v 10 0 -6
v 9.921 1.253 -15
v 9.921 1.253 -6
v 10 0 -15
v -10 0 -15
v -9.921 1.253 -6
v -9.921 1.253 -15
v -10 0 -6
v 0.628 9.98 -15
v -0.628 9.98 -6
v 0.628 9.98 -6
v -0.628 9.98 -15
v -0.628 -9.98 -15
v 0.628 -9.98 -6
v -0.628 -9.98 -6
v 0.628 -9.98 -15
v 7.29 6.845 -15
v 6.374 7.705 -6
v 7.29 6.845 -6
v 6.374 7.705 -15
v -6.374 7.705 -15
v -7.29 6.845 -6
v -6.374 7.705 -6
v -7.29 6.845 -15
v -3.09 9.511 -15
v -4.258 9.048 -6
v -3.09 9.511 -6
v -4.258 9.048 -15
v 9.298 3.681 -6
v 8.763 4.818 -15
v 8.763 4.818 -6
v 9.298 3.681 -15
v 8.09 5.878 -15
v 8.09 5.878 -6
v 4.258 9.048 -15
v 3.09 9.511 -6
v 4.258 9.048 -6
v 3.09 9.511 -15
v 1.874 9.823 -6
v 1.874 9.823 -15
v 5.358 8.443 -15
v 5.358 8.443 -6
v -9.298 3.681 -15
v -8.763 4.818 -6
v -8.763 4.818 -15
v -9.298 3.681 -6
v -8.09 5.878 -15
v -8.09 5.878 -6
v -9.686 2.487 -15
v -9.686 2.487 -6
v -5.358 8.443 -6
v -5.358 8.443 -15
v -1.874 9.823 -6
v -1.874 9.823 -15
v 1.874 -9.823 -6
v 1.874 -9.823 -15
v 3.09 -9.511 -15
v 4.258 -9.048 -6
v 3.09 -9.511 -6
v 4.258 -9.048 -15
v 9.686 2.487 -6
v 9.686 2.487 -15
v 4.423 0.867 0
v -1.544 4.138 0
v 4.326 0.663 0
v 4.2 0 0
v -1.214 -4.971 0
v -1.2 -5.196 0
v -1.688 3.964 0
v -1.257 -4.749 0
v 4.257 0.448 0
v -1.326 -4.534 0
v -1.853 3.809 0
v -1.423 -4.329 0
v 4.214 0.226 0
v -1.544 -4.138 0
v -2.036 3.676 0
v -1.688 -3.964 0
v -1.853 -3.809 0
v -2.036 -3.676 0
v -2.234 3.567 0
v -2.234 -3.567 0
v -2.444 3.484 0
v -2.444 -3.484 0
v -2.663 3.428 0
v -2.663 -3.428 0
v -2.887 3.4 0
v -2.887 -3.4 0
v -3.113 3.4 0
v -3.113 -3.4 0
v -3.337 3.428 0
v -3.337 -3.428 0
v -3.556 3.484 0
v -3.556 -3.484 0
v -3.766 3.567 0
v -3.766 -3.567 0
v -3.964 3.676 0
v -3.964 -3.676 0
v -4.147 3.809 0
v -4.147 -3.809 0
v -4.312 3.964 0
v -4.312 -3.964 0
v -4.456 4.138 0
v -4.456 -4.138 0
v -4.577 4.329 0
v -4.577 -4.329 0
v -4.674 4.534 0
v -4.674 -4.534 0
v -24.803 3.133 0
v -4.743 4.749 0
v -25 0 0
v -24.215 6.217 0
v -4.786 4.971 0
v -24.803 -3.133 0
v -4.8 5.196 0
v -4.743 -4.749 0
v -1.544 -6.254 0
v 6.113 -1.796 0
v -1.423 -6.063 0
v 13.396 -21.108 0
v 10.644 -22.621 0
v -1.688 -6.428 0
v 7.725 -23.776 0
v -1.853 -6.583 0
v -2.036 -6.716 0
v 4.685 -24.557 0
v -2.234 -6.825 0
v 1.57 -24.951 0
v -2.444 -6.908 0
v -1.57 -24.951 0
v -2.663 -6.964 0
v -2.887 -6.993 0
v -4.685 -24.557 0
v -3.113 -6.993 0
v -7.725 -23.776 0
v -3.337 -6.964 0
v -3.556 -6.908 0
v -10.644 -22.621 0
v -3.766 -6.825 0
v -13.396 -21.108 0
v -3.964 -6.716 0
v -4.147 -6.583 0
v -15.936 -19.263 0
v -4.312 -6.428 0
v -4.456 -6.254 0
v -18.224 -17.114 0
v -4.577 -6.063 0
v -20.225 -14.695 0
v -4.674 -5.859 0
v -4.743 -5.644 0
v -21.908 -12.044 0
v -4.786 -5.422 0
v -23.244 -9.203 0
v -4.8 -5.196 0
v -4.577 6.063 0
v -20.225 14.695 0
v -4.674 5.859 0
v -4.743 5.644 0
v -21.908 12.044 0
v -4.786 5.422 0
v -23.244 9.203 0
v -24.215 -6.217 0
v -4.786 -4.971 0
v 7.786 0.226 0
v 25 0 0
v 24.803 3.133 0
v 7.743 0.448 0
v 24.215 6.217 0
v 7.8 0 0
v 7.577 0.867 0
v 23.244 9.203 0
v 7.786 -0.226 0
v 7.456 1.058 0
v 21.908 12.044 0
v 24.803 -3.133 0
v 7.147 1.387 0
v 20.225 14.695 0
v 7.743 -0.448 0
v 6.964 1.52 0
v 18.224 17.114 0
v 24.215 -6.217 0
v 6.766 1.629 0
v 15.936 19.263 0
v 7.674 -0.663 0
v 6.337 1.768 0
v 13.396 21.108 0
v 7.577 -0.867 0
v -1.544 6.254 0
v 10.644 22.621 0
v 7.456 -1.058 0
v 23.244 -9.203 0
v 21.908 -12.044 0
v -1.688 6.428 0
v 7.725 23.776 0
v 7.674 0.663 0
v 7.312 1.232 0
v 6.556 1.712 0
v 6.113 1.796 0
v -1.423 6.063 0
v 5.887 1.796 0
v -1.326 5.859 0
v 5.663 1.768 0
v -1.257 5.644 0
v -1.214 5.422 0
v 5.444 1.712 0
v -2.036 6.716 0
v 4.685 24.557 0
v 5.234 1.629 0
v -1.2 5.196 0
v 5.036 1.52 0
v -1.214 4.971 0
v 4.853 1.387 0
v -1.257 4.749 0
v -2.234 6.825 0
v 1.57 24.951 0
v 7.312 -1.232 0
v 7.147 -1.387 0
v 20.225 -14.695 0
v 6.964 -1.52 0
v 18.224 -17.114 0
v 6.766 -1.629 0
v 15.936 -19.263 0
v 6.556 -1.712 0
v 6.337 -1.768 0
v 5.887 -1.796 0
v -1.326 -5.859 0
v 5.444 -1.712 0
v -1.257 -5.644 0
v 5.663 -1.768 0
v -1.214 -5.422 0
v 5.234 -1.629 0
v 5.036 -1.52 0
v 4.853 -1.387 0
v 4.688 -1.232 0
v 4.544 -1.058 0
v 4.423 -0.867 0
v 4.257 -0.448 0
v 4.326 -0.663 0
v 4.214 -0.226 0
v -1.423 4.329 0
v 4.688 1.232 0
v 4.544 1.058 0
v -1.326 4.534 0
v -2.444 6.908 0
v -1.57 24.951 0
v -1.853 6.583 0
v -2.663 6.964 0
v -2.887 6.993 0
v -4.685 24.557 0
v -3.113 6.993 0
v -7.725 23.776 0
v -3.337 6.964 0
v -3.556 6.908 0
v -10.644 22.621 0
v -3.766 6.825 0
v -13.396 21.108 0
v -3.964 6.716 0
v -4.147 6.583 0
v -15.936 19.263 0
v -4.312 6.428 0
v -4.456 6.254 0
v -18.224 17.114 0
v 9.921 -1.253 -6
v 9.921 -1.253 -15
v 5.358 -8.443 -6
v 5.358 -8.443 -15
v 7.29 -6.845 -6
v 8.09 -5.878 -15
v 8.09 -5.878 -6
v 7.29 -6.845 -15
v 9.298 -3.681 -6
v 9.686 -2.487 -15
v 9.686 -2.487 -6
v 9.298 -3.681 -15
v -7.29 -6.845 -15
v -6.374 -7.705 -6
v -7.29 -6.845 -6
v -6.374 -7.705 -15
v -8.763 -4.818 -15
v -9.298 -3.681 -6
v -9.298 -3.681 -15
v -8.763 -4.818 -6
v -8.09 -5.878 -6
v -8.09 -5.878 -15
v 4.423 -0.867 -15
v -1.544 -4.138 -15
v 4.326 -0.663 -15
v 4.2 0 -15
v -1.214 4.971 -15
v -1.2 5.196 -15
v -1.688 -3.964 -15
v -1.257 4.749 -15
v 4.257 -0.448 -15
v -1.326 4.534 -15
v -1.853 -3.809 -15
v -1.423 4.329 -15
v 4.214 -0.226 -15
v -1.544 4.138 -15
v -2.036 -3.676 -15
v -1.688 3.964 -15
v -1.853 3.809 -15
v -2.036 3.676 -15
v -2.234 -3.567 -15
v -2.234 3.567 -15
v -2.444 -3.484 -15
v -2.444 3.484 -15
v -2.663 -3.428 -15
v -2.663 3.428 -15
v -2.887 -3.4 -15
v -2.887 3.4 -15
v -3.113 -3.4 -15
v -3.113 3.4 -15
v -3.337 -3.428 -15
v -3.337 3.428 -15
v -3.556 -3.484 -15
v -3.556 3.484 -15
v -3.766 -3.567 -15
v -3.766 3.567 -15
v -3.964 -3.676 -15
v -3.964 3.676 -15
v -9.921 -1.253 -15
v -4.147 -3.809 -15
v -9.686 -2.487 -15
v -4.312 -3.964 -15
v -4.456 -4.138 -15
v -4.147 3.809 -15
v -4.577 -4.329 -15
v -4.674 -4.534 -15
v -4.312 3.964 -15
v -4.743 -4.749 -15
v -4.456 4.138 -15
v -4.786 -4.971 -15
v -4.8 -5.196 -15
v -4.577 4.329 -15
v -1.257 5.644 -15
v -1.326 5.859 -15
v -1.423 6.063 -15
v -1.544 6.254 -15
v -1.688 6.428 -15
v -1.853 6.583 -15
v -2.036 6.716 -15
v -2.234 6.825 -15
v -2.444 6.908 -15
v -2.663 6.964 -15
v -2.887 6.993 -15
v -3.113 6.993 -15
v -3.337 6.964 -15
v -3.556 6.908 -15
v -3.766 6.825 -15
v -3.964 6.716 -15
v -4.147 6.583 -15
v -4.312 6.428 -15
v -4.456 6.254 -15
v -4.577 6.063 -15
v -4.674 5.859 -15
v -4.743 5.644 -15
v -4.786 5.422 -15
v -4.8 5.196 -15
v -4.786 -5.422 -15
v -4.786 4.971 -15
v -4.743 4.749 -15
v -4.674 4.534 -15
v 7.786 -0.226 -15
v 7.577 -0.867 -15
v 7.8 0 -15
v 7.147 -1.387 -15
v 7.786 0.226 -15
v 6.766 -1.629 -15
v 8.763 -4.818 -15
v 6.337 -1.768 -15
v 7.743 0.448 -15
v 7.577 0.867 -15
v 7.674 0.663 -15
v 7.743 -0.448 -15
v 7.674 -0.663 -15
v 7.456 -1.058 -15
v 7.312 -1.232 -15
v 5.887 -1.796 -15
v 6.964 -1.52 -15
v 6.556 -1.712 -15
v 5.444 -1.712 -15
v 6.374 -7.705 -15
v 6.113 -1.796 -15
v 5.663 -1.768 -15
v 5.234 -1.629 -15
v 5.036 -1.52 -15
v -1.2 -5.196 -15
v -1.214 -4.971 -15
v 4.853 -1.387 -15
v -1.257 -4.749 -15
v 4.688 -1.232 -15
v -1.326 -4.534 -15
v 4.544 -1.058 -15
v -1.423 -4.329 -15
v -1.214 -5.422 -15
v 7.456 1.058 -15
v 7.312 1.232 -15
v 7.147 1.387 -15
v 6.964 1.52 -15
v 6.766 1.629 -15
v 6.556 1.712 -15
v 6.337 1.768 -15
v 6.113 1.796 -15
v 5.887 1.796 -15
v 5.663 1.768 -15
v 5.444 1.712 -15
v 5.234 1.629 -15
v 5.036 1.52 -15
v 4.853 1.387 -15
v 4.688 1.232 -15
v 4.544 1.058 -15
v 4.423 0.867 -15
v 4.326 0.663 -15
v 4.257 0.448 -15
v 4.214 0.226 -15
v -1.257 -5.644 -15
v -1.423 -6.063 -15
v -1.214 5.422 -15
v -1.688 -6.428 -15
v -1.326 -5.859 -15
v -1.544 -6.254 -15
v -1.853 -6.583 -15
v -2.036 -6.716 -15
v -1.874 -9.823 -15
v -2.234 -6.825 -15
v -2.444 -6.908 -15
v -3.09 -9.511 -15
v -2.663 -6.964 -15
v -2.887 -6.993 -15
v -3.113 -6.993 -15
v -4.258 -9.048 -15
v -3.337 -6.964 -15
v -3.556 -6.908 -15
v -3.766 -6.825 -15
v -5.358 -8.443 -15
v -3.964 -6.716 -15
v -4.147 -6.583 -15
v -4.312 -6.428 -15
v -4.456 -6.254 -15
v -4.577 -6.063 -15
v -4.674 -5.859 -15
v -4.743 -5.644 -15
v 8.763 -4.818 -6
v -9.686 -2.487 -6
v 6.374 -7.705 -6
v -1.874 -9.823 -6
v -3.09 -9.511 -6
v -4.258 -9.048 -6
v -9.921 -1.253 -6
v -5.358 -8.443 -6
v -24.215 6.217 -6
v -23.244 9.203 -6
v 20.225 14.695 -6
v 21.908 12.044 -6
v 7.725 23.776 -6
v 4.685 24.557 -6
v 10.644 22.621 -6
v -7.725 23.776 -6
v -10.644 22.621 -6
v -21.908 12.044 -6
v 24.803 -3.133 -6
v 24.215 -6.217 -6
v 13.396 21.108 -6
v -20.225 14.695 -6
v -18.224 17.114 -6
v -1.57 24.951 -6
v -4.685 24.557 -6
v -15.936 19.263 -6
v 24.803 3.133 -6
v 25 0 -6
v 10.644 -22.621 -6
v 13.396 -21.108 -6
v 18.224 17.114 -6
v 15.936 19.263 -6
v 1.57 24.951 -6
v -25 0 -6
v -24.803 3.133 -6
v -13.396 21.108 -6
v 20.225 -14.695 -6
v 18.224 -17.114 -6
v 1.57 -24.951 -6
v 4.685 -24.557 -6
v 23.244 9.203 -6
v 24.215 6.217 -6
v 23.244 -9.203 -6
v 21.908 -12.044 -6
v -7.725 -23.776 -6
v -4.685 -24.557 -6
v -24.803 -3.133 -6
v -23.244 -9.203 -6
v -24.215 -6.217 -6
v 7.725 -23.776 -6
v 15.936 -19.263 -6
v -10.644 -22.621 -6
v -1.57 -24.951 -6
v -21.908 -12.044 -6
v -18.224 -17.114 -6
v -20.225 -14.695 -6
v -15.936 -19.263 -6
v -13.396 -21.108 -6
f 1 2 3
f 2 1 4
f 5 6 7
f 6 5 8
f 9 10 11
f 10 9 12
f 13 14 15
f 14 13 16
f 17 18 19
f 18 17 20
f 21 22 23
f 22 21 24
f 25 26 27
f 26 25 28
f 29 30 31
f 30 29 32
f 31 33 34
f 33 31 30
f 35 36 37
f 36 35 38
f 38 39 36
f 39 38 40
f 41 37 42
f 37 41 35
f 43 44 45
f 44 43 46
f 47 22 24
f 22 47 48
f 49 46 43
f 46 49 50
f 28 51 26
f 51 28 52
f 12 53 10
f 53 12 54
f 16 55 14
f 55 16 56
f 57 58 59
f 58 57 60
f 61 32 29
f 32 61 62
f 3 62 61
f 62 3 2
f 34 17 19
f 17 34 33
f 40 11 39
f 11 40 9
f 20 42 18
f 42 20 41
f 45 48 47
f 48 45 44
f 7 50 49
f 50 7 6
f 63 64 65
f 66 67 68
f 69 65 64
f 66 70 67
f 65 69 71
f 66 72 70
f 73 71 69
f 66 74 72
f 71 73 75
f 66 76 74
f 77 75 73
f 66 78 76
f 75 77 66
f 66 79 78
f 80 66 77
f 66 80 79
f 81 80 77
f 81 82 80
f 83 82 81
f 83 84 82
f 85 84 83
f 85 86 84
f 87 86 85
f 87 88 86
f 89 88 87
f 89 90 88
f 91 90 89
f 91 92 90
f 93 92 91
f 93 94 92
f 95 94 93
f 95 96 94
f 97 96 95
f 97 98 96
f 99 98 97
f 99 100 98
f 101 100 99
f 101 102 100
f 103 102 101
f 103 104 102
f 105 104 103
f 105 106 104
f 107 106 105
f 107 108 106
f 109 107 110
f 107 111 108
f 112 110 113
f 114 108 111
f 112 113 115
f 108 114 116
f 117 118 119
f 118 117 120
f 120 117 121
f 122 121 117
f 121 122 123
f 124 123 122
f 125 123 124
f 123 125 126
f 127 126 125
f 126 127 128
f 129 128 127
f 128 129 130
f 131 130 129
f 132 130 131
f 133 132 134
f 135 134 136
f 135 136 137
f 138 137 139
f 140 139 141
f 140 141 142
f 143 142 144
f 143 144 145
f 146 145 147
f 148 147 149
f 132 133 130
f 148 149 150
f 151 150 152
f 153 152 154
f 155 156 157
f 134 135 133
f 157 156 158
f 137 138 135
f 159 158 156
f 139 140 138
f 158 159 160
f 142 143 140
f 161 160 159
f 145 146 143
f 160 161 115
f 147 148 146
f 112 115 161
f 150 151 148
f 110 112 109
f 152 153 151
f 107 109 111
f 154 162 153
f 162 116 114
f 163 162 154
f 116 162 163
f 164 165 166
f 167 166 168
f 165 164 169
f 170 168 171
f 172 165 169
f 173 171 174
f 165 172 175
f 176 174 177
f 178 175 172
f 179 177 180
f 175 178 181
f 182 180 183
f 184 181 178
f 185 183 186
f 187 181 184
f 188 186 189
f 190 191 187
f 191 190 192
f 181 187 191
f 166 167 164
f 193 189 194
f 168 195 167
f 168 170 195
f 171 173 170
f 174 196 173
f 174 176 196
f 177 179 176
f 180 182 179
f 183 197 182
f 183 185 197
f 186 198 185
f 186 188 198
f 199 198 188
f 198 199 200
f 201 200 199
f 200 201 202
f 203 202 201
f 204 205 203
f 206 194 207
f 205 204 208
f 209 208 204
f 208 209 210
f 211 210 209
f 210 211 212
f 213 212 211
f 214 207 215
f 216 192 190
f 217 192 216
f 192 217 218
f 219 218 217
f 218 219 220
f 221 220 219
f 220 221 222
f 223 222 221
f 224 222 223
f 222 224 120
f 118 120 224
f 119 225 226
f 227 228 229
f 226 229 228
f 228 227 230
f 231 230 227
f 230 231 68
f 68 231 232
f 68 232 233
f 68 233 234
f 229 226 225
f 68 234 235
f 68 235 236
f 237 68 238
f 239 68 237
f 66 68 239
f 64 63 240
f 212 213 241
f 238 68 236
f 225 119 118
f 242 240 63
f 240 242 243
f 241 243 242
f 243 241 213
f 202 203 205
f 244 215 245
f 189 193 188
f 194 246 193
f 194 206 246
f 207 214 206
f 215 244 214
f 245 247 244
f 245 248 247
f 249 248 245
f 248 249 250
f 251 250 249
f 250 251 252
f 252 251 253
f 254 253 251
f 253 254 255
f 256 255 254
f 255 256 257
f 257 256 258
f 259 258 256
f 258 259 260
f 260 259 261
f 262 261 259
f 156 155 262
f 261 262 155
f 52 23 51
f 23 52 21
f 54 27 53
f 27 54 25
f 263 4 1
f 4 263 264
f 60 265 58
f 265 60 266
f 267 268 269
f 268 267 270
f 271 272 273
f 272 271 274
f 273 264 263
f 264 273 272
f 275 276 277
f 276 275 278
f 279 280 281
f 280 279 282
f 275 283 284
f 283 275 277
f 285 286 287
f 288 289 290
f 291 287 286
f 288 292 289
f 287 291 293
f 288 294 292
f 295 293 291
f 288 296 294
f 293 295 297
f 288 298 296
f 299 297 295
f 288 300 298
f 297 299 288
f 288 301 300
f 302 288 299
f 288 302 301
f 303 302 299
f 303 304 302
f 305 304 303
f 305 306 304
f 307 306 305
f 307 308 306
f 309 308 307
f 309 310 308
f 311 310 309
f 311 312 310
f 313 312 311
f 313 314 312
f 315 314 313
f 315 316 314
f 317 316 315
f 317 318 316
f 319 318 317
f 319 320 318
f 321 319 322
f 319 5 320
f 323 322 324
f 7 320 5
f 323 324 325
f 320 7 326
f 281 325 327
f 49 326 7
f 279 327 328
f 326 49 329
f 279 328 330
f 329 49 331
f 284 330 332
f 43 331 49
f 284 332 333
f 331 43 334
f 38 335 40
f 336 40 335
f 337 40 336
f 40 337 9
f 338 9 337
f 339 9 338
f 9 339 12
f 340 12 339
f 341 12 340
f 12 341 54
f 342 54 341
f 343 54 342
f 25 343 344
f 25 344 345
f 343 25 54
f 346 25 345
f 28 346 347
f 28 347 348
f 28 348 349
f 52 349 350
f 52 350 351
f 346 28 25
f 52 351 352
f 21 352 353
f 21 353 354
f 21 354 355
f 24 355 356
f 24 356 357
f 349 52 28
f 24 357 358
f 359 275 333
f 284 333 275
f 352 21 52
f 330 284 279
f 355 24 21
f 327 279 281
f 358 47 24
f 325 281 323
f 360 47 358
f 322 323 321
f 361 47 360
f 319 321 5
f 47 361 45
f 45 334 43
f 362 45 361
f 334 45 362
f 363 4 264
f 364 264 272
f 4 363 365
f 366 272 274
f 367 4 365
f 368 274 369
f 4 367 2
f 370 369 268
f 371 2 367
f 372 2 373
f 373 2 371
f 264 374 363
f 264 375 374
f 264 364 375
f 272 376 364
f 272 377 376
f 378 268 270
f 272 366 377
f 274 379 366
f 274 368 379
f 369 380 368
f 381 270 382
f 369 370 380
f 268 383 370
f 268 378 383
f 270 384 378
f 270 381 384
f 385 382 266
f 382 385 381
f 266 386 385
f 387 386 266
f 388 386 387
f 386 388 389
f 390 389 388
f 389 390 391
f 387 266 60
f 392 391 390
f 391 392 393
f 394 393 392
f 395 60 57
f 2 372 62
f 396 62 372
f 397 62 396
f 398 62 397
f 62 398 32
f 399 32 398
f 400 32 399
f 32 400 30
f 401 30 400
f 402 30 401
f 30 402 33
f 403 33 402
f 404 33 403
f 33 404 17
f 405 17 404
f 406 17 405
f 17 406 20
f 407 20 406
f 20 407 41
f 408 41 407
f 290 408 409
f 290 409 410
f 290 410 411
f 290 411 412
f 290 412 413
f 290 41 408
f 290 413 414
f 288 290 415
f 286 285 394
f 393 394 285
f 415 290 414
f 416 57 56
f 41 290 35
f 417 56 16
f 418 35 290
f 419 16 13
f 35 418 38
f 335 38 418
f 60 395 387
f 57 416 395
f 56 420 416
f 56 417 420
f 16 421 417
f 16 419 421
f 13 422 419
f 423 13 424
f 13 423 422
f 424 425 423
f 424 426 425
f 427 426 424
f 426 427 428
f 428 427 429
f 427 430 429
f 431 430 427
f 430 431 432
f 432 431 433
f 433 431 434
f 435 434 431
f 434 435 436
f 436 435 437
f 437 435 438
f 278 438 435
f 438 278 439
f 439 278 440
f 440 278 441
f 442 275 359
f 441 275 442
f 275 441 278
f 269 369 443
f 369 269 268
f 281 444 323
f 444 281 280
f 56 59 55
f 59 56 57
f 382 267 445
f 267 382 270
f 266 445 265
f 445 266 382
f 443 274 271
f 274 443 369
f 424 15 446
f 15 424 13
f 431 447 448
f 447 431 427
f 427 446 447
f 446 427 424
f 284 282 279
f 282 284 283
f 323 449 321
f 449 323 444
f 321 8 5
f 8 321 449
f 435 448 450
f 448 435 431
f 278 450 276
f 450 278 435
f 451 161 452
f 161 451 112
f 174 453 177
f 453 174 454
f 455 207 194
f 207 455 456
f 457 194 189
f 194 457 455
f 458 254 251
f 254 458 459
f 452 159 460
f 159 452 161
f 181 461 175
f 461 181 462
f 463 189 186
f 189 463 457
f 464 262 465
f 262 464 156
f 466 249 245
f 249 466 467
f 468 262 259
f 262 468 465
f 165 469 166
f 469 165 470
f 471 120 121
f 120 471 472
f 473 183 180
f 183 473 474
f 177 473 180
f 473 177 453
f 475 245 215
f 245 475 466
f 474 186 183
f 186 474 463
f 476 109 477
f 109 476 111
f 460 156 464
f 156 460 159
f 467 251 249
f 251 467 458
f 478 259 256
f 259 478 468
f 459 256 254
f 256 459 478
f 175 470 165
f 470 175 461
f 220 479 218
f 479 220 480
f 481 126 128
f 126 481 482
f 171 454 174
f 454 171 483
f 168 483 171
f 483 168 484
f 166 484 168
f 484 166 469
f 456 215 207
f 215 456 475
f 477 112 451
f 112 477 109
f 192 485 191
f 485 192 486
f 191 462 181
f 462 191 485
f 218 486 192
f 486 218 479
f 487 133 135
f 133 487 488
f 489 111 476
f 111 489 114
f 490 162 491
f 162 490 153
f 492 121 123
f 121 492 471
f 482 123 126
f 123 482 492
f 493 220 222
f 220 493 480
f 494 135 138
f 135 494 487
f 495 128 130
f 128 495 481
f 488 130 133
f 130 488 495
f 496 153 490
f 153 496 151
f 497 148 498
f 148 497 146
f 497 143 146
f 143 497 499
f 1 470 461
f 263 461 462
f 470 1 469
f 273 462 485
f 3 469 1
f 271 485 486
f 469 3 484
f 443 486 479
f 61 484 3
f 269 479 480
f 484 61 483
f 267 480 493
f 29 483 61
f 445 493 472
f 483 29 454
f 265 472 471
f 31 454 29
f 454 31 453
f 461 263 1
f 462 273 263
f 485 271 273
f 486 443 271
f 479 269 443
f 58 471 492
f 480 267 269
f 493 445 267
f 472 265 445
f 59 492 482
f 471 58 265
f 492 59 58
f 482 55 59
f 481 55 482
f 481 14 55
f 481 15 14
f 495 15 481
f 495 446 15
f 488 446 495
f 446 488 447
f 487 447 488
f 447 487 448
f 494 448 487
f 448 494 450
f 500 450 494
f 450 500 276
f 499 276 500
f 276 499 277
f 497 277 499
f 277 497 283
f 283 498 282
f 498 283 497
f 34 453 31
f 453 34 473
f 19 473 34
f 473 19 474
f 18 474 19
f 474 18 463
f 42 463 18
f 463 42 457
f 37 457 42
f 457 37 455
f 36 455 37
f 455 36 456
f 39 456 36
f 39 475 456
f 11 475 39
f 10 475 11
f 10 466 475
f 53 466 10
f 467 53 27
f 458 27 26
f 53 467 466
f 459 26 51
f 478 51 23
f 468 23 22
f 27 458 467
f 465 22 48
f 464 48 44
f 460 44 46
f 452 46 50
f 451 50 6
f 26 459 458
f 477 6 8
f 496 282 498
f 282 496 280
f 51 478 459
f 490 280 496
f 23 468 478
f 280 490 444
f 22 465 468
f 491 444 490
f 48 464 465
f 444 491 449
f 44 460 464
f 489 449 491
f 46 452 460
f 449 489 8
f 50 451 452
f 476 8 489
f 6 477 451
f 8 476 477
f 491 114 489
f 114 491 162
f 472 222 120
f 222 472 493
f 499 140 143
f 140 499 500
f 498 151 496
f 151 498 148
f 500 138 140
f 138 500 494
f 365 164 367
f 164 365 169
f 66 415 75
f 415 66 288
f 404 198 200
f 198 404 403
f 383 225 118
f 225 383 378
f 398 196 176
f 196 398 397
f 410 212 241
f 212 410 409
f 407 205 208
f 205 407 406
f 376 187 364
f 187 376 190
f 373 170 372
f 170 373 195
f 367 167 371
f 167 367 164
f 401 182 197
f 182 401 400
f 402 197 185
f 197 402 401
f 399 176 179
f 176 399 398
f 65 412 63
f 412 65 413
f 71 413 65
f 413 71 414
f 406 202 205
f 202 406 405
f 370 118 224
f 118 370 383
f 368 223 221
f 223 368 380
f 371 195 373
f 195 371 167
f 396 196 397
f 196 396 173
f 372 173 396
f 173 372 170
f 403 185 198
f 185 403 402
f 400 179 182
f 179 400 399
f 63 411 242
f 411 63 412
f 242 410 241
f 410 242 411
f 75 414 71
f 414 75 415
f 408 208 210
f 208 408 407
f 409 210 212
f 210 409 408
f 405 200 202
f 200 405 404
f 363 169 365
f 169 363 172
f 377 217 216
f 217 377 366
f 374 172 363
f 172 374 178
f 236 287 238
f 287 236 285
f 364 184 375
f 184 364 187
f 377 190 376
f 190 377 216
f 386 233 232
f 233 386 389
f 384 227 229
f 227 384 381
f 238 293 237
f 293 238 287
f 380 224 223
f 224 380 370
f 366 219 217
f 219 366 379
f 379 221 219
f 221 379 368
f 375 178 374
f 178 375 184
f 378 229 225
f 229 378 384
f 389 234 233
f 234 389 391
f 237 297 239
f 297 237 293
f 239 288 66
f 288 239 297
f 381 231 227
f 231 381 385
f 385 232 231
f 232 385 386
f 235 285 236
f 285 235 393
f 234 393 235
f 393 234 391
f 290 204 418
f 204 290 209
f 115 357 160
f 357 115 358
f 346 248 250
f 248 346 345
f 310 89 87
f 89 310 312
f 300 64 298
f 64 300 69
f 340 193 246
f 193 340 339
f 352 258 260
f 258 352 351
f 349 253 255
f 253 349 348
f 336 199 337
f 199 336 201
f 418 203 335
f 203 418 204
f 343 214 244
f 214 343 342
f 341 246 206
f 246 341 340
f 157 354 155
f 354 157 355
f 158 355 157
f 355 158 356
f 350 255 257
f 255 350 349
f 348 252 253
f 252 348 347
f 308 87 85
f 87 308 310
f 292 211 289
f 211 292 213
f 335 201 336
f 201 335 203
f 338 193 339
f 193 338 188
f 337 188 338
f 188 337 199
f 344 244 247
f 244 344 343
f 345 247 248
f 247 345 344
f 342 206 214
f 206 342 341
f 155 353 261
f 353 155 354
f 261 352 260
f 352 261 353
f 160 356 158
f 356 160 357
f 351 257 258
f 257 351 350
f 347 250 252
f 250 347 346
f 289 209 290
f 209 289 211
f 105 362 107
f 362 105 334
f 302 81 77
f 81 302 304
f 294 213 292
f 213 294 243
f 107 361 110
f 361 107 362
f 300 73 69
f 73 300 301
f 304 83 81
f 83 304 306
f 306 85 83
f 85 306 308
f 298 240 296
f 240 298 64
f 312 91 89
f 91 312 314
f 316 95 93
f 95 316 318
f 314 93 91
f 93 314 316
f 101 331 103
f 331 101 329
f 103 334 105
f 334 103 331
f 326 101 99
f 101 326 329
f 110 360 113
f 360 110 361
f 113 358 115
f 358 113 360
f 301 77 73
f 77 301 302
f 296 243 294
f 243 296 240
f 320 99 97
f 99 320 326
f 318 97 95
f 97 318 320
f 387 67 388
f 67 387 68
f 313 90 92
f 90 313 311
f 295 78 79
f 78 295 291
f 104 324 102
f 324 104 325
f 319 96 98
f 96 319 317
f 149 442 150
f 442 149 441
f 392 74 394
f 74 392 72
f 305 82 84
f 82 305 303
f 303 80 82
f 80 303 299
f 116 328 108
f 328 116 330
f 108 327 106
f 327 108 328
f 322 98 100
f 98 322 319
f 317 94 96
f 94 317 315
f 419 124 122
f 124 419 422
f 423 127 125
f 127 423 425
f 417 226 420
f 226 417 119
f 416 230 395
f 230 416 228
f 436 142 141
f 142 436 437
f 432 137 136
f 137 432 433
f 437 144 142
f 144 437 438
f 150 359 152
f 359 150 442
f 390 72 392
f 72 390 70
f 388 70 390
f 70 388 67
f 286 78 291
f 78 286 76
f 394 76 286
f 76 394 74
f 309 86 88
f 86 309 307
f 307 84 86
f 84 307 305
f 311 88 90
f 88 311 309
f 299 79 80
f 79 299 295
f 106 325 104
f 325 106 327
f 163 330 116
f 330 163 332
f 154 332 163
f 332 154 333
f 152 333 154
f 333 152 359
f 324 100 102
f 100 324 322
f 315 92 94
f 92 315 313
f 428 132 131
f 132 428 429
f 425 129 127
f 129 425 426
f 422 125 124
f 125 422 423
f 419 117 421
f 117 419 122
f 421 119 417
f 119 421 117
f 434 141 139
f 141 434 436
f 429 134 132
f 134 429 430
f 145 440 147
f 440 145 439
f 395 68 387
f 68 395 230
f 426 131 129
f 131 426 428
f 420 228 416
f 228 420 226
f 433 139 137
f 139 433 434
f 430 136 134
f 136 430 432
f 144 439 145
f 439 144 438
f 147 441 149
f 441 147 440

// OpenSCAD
$fn = 50;


difference() {
	union() {
		translate(v = [0, 0, -15.0000000000]) {
			cylinder(h = 15, r = 10.0000000000);
		}
		translate(v = [0, 0, -6.0000000000]) {
			cylinder(h = 6, r = 25.0000000000);
		}
	}
	union() {
		#translate(v = [6.0000000000, 0.0000000000, -15]) {
			cylinder(h = 15, r = 1.8000000000);
		}
		#translate(v = [-3.0000000000, 5.1961524227, -15]) {
			cylinder(h = 15, r = 1.8000000000);
		}
		#translate(v = [-3.0000000000, -5.1961524227, -15]) {
			cylinder(h = 15, r = 1.8000000000);
		}
	}
}
